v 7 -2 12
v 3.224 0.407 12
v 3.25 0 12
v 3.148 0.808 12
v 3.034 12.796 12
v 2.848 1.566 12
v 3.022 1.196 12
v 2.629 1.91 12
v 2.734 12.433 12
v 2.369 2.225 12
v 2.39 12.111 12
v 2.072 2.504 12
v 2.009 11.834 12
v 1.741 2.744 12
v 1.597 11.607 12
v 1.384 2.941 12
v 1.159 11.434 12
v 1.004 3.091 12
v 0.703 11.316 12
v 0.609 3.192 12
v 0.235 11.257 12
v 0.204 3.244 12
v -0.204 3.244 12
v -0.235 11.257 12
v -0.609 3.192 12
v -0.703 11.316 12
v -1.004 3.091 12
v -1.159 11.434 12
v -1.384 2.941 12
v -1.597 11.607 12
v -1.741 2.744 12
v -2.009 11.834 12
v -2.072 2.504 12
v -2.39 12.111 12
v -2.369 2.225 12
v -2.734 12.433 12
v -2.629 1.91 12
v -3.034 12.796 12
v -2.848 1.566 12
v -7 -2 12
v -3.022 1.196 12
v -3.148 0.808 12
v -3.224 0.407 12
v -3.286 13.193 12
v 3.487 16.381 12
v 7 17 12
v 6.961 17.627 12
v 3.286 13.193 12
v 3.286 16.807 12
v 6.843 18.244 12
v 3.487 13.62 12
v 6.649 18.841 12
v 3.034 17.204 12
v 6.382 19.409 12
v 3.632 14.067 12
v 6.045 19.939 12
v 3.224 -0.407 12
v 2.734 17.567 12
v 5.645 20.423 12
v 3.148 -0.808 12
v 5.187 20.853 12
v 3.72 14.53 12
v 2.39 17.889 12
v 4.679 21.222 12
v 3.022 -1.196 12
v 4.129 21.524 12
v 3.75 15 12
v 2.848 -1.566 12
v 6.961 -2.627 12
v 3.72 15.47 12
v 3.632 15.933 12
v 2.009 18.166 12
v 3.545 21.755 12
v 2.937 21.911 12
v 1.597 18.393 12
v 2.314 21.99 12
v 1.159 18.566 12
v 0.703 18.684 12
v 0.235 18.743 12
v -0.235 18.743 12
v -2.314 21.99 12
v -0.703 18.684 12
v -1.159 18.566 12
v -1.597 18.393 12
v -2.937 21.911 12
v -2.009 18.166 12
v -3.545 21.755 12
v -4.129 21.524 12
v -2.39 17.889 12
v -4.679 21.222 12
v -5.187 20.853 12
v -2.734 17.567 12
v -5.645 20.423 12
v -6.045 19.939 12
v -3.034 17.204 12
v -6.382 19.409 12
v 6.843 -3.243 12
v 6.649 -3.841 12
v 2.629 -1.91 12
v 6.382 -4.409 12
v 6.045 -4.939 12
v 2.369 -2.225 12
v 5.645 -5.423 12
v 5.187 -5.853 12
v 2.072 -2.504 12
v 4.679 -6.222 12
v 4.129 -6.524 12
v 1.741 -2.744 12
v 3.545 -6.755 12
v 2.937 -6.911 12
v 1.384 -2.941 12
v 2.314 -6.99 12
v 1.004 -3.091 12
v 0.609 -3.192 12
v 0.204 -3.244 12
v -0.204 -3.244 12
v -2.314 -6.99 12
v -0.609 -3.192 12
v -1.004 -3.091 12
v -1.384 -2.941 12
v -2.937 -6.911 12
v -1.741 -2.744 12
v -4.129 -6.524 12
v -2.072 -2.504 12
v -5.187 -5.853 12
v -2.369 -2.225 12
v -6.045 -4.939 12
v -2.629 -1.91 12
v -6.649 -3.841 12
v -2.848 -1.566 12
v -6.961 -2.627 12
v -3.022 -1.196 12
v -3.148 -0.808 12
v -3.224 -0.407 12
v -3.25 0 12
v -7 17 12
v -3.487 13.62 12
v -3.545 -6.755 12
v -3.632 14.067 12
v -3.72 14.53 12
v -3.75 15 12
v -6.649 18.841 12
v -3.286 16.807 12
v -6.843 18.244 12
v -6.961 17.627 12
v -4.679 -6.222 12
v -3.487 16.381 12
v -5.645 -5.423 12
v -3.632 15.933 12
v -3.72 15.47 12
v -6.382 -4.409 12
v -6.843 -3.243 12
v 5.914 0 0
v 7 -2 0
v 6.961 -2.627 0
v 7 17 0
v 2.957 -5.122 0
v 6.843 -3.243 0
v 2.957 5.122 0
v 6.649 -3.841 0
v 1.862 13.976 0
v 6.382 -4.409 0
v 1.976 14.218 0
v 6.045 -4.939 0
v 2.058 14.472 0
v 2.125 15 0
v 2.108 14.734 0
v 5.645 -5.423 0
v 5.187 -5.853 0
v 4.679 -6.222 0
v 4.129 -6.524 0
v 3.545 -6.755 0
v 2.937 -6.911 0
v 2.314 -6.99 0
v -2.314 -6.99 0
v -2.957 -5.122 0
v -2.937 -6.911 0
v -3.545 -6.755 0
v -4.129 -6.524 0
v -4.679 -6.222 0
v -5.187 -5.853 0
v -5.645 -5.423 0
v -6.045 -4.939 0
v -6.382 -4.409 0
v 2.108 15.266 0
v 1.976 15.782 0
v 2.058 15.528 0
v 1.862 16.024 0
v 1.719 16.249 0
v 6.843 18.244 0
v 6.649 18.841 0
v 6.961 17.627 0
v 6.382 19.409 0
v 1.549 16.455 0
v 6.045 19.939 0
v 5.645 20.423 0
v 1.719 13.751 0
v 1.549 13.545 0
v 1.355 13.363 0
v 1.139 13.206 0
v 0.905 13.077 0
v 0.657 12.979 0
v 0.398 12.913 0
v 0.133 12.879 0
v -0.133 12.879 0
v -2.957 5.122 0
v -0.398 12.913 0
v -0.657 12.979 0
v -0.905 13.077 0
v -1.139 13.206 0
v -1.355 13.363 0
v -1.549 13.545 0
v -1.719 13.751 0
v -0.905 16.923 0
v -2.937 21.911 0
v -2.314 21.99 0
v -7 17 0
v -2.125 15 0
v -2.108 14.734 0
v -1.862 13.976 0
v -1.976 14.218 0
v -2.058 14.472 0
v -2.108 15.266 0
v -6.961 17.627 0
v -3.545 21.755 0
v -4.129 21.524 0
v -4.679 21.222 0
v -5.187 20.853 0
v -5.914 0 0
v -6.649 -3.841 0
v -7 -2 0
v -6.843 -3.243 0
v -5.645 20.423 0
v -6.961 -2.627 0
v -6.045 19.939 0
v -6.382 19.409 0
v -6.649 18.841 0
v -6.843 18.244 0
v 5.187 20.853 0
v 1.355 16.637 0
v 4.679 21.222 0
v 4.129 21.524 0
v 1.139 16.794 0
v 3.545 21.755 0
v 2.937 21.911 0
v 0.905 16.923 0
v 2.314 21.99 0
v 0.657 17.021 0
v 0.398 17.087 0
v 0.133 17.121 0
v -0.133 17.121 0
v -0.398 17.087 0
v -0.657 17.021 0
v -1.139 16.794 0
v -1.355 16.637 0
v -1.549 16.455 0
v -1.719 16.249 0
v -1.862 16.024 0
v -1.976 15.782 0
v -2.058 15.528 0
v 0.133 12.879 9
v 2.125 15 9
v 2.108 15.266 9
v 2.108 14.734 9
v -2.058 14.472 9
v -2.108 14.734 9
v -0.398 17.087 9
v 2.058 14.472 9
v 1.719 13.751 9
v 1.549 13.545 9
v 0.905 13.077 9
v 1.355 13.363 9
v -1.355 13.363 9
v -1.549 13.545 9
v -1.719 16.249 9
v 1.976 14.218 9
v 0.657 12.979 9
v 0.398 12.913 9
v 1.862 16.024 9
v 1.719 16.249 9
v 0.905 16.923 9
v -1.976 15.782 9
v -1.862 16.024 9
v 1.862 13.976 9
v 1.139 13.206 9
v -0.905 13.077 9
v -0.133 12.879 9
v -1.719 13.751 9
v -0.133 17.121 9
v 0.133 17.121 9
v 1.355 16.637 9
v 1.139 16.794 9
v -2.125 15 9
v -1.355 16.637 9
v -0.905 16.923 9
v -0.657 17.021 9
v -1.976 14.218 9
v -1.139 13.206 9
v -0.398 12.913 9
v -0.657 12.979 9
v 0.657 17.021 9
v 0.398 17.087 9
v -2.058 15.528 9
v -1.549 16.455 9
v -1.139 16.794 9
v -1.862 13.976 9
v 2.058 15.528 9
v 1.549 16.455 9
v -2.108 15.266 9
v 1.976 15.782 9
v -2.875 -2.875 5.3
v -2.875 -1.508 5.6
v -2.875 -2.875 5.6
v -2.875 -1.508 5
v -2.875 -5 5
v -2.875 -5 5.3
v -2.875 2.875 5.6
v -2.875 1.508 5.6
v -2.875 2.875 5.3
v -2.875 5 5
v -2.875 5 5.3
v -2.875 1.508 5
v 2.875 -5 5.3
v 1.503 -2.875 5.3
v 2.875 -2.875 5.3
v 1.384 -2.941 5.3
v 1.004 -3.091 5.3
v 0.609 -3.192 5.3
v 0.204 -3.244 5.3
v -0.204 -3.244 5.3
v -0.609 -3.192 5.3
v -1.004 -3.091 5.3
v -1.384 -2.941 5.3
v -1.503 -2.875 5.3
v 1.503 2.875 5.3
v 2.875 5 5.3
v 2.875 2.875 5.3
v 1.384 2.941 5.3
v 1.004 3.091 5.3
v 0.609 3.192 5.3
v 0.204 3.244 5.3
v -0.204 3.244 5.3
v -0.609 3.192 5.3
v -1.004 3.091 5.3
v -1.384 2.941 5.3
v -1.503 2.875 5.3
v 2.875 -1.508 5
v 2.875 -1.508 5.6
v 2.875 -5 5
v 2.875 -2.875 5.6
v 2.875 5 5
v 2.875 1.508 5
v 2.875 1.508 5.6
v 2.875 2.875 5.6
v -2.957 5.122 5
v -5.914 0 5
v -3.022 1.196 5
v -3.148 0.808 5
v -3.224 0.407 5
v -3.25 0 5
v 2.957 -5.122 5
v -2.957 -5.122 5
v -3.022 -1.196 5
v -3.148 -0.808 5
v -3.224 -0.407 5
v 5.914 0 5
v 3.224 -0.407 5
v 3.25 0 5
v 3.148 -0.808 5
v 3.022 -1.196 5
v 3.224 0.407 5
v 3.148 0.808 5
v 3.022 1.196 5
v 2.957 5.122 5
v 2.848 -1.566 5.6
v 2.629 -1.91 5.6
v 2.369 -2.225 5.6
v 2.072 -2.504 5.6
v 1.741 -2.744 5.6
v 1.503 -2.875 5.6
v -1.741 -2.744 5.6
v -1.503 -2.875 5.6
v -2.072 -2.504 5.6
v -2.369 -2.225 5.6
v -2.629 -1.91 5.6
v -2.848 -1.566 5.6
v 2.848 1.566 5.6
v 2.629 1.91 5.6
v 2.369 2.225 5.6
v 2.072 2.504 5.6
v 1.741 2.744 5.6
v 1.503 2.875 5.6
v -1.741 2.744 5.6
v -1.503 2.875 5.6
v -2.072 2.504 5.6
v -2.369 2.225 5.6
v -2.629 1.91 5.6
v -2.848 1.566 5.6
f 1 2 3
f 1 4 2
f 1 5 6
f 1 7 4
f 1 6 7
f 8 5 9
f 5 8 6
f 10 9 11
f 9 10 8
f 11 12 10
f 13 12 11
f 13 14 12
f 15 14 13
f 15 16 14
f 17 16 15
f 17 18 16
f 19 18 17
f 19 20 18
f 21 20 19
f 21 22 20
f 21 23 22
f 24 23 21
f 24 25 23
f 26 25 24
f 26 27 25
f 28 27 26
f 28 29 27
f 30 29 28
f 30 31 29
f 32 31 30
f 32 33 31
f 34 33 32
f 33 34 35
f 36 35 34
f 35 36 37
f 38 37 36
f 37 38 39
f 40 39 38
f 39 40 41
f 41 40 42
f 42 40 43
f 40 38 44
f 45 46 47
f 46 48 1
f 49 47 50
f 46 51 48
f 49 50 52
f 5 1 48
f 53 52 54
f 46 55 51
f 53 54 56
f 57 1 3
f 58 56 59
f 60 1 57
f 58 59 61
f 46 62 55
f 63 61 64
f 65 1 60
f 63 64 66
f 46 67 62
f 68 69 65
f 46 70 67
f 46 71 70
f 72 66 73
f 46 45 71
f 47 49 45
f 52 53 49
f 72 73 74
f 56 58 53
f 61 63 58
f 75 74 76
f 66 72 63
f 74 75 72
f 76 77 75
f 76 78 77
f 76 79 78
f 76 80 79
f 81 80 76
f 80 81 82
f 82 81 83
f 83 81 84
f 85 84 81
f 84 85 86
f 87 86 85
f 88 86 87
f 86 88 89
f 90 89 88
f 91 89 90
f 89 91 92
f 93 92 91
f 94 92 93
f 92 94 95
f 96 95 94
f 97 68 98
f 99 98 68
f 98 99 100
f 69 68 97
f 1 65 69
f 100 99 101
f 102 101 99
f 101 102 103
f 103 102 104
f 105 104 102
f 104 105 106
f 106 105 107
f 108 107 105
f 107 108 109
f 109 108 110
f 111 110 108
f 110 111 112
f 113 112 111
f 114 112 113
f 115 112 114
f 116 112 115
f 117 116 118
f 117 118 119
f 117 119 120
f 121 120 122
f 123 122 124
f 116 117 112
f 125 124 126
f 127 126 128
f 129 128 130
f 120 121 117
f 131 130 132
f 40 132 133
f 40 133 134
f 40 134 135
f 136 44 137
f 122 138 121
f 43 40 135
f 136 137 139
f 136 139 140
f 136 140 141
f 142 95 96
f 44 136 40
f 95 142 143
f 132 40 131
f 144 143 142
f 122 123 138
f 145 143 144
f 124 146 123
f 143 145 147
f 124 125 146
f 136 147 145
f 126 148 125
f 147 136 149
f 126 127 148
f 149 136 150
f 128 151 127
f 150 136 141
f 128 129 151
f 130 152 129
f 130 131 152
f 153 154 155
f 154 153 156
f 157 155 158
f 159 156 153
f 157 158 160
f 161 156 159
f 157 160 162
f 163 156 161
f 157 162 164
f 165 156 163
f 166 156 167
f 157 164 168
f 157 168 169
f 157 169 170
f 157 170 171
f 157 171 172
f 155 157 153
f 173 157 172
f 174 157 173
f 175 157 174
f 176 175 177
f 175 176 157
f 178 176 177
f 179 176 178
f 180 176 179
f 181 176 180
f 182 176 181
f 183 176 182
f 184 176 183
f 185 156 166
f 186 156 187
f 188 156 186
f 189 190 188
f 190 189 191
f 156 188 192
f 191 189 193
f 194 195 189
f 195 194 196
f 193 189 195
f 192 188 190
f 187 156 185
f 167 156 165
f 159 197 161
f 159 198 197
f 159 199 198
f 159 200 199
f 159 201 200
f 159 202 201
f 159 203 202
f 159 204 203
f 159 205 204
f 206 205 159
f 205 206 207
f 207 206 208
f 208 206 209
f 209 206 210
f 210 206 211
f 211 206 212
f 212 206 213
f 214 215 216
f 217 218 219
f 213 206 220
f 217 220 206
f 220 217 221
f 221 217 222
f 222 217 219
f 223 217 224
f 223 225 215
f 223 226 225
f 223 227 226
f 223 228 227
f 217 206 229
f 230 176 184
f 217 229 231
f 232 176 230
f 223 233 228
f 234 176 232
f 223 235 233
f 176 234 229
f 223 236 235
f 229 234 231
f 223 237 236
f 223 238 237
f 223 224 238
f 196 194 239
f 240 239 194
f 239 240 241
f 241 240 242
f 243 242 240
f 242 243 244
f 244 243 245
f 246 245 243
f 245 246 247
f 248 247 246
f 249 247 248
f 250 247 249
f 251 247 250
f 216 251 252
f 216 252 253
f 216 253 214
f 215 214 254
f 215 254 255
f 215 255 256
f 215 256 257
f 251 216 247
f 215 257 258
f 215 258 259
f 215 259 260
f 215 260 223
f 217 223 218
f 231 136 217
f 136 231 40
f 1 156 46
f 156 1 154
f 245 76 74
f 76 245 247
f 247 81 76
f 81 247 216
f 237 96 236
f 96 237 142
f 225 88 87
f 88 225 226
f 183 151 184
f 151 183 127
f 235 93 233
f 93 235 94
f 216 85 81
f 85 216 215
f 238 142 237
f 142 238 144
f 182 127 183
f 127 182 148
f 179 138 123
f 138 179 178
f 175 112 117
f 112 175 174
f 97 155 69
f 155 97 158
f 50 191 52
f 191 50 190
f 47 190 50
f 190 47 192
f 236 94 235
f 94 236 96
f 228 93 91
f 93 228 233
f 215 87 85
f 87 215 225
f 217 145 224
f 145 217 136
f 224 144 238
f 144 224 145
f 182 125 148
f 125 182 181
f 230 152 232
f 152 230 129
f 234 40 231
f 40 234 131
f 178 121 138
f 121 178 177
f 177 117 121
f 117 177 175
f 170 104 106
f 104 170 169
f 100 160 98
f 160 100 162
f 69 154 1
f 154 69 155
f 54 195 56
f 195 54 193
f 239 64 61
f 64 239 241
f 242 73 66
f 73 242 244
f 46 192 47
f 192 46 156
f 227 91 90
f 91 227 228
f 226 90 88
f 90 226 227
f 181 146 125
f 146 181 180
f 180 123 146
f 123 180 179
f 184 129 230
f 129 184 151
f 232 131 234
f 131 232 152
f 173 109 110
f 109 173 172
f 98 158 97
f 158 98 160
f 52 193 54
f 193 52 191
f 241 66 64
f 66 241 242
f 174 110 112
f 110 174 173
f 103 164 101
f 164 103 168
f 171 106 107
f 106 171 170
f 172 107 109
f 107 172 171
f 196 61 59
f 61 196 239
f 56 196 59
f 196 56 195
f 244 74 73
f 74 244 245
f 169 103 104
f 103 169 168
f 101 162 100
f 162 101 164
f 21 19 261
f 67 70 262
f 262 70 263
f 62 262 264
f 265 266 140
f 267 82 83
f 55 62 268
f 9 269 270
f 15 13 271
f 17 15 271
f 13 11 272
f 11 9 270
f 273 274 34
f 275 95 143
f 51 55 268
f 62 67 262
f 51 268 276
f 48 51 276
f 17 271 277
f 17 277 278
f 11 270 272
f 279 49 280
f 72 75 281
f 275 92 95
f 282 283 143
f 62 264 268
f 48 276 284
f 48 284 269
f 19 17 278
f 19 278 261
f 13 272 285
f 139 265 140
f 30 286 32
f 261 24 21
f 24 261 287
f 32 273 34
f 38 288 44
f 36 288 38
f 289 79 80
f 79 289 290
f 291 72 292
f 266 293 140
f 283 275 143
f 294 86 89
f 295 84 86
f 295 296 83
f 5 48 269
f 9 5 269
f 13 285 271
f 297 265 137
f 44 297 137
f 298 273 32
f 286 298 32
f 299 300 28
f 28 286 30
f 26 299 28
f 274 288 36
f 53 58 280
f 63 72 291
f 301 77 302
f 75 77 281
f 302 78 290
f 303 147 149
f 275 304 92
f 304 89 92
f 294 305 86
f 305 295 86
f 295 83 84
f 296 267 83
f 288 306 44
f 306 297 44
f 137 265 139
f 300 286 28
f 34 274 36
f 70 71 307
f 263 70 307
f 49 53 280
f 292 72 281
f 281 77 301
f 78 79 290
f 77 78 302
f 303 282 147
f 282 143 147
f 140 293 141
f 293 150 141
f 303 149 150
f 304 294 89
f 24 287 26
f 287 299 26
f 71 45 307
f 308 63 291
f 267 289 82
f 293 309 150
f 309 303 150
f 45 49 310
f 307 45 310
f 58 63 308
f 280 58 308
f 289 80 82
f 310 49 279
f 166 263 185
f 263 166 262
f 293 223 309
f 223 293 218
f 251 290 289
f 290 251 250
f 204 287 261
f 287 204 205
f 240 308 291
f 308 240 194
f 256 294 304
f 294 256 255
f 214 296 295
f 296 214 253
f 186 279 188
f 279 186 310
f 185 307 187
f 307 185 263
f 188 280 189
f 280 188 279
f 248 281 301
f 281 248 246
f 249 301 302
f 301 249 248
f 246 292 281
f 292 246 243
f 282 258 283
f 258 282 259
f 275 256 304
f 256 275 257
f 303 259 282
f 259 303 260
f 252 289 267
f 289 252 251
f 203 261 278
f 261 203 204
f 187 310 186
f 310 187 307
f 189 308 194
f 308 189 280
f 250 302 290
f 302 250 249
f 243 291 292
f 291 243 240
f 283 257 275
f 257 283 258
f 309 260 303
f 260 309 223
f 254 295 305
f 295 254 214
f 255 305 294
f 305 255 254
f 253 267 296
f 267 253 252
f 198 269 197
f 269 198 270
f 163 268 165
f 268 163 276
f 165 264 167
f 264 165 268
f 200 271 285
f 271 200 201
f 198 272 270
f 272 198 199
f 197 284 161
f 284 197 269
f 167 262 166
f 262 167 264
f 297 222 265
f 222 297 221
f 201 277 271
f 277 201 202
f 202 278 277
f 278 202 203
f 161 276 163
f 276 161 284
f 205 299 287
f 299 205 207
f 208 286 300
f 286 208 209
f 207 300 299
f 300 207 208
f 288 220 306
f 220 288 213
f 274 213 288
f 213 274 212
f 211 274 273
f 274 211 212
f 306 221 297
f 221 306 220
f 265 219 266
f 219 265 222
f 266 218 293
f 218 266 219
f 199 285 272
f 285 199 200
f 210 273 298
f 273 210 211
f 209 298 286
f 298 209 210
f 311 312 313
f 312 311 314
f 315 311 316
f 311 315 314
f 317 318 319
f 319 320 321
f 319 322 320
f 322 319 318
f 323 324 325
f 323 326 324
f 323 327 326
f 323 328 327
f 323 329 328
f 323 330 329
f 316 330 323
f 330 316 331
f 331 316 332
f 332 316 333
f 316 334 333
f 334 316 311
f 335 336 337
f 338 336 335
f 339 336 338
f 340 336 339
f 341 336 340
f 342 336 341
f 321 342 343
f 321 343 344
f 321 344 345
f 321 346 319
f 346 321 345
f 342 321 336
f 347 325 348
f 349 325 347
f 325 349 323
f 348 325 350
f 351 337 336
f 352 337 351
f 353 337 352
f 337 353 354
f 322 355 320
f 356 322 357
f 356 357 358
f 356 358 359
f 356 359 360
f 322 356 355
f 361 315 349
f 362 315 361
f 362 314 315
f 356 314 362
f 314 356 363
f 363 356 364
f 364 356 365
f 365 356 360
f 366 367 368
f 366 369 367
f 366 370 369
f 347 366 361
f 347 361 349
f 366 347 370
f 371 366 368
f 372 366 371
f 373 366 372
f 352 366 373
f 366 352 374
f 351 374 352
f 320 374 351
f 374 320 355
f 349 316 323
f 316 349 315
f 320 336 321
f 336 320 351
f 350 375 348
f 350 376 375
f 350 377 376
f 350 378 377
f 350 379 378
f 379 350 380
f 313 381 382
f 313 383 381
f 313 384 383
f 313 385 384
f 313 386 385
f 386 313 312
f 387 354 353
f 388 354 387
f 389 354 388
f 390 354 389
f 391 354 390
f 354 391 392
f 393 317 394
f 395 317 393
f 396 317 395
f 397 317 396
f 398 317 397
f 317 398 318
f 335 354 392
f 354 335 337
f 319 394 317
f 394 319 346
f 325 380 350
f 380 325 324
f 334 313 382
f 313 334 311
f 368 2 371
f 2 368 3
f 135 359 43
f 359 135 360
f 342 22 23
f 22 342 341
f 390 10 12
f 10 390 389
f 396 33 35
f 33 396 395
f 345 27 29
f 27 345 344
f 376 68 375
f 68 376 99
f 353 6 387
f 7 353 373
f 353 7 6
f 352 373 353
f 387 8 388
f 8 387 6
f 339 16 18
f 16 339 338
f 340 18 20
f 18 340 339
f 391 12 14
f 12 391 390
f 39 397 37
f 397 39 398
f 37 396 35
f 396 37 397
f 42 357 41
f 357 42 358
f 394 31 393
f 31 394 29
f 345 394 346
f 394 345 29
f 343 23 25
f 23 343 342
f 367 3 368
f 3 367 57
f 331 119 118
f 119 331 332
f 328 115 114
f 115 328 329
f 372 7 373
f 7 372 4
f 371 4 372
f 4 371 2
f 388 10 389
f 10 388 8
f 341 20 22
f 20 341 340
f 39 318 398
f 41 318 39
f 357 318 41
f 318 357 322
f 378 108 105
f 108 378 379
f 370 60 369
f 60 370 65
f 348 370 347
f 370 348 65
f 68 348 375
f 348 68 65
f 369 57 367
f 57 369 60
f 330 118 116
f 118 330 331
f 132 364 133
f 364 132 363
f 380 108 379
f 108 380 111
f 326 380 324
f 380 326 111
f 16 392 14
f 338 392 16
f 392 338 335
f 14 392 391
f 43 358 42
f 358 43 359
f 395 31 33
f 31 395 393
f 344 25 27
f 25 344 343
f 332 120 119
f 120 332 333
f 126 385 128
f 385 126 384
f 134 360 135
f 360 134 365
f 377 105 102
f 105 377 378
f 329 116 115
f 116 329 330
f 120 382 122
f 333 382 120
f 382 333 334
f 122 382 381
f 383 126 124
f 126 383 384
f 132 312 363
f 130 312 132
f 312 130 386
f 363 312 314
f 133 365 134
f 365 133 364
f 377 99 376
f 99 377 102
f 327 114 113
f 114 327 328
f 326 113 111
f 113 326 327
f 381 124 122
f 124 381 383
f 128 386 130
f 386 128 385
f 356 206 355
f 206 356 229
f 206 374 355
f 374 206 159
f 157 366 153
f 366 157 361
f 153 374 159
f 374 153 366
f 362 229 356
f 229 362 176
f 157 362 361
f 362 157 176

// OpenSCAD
$fn = 50;


difference() {
	union() {
		cylinder(h = 12, r = 7.0000000000);
		translate(v = [0.0000000000, 7.5000000000, 0]) {
			hull() {
				translate(v = [-2.0000000000, 9.5000000000, 0]) {
					cylinder(h = 12, r = 5);
				}
				translate(v = [2.0000000000, 9.5000000000, 0]) {
					cylinder(h = 12, r = 5);
				}
				translate(v = [-2.0000000000, -9.5000000000, 0]) {
					cylinder(h = 12, r = 5);
				}
				translate(v = [2.0000000000, -9.5000000000, 0]) {
					cylinder(h = 12, r = 5);
				}
			}
		}
		translate(v = [0.0000000000, 7.5000000000, 0]) {
			hull() {
				translate(v = [-2.0000000000, 9.5000000000, 0]) {
					cylinder(h = 12, r = 5);
				}
				translate(v = [2.0000000000, 9.5000000000, 0]) {
					cylinder(h = 12, r = 5);
				}
				translate(v = [-2.0000000000, -9.5000000000, 0]) {
					cylinder(h = 12, r = 5);
				}
				translate(v = [2.0000000000, -9.5000000000, 0]) {
					cylinder(h = 12, r = 5);
				}
			}
		}
	}
	union() {
		translate(v = [0.0000000000, 15.0000000000, 12]) {
			rotate(a = [0, 0, 0]) {
				difference() {
					union() {
						#translate(v = [0, 0, -12.0000000000]) {
							cylinder(h = 12, r = 2.0000000000);
						}
						#translate(v = [0, 0, -3]) {
							cylinder(h = 3, r1 = 2.1250000000, r2 = 3.7500000000);
						}
						#translate(v = [0, 0, -12.0000000000]) {
							cylinder(h = 12, r = 2.1250000000);
						}
						#translate(v = [0, 0, -12.0000000000]) {
							cylinder(h = 12, r = 2.0000000000);
						}
					}
					union();
				}
			}
		}
		translate(v = [0.0000000000, 15.0000000000, 12]) {
			rotate(a = [0, 0, 0]) {
				difference() {
					union() {
						#translate(v = [0, 0, -12.0000000000]) {
							cylinder(h = 12, r = 2.0000000000);
						}
						#translate(v = [0, 0, -3]) {
							cylinder(h = 3, r1 = 2.1250000000, r2 = 3.7500000000);
						}
						#translate(v = [0, 0, -12.0000000000]) {
							cylinder(h = 12, r = 2.1250000000);
						}
						#translate(v = [0, 0, -12.0000000000]) {
							cylinder(h = 12, r = 2.0000000000);
						}
					}
					union();
				}
			}
		}
		translate(v = [0.0000000000, 0.0000000000, 0]) {
			rotate(a = [0, 0, 0]) {
				difference() {
					union() {
						#translate(v = [-2.8750000000, -5.0000000000, -0.3000000000]) {
							cube(size = [5.7500000000, 10, 0.3000000000]);
						}
						#translate(v = [-2.8750000000, -2.8750000000, -0.6000000000]) {
							cube(size = [5.7500000000, 5.7500000000, 0.3000000000]);
						}
						#translate(v = [-2.8750000000, -5.0000000000, 5]) {
							cube(size = [5.7500000000, 10, 0.3000000000]);
						}
						#translate(v = [-2.8750000000, -2.8750000000, 5.3000000000]) {
							cube(size = [5.7500000000, 5.7500000000, 0.3000000000]);
						}
						#translate(v = [0, 0, -100.0000000000]) {
							cylinder(h = 200, r = 3.2500000000);
						}
						#linear_extrude(height = 5) {
							polygon(points = [[5.9142500000, 0.0000000000], [2.9571250000, 5.1218907443], [-2.9571250000, 5.1218907443], [-5.9142500000, 0.0000000000], [-2.9571250000, -5.1218907443], [2.9571250000, -5.1218907443]]);
						}
						#translate(v = [-2.8750000000, -5.0000000000, -0.3000000000]) {
							cube(size = [5.7500000000, 10, 0.3000000000]);
						}
						#translate(v = [-2.8750000000, -2.8750000000, -0.6000000000]) {
							cube(size = [5.7500000000, 5.7500000000, 0.3000000000]);
						}
						#translate(v = [-2.8750000000, -5.0000000000, 5]) {
							cube(size = [5.7500000000, 10, 0.3000000000]);
						}
						#translate(v = [-2.8750000000, -2.8750000000, 5.3000000000]) {
							cube(size = [5.7500000000, 5.7500000000, 0.3000000000]);
						}
						#translate(v = [0, 0, -100.0000000000]) {
							cylinder(h = 200, r = 3.2500000000);
						}
						#translate(v = [-2.8750000000, -5.0000000000, -0.3000000000]) {
							cube(size = [5.7500000000, 10, 0.3000000000]);
						}
						#translate(v = [-2.8750000000, -2.8750000000, -0.6000000000]) {
							cube(size = [5.7500000000, 5.7500000000, 0.3000000000]);
						}
						#translate(v = [-2.8750000000, -5.0000000000, 5]) {
							cube(size = [5.7500000000, 10, 0.3000000000]);
						}
						#translate(v = [-2.8750000000, -2.8750000000, 5.3000000000]) {
							cube(size = [5.7500000000, 5.7500000000, 0.3000000000]);
						}
						#translate(v = [0, 0, -100.0000000000]) {
							cylinder(h = 200, r = 3.2500000000);
						}
					}
					union();
				}
			}
		}
		translate(v = [0, 0, -100]) {
			cylinder(h = 200, r = 3.2500000000);
		}
		translate(v = [0, 0, -100]) {
			cylinder(h = 200, r = 1.8000000000);
		}
	}
}
